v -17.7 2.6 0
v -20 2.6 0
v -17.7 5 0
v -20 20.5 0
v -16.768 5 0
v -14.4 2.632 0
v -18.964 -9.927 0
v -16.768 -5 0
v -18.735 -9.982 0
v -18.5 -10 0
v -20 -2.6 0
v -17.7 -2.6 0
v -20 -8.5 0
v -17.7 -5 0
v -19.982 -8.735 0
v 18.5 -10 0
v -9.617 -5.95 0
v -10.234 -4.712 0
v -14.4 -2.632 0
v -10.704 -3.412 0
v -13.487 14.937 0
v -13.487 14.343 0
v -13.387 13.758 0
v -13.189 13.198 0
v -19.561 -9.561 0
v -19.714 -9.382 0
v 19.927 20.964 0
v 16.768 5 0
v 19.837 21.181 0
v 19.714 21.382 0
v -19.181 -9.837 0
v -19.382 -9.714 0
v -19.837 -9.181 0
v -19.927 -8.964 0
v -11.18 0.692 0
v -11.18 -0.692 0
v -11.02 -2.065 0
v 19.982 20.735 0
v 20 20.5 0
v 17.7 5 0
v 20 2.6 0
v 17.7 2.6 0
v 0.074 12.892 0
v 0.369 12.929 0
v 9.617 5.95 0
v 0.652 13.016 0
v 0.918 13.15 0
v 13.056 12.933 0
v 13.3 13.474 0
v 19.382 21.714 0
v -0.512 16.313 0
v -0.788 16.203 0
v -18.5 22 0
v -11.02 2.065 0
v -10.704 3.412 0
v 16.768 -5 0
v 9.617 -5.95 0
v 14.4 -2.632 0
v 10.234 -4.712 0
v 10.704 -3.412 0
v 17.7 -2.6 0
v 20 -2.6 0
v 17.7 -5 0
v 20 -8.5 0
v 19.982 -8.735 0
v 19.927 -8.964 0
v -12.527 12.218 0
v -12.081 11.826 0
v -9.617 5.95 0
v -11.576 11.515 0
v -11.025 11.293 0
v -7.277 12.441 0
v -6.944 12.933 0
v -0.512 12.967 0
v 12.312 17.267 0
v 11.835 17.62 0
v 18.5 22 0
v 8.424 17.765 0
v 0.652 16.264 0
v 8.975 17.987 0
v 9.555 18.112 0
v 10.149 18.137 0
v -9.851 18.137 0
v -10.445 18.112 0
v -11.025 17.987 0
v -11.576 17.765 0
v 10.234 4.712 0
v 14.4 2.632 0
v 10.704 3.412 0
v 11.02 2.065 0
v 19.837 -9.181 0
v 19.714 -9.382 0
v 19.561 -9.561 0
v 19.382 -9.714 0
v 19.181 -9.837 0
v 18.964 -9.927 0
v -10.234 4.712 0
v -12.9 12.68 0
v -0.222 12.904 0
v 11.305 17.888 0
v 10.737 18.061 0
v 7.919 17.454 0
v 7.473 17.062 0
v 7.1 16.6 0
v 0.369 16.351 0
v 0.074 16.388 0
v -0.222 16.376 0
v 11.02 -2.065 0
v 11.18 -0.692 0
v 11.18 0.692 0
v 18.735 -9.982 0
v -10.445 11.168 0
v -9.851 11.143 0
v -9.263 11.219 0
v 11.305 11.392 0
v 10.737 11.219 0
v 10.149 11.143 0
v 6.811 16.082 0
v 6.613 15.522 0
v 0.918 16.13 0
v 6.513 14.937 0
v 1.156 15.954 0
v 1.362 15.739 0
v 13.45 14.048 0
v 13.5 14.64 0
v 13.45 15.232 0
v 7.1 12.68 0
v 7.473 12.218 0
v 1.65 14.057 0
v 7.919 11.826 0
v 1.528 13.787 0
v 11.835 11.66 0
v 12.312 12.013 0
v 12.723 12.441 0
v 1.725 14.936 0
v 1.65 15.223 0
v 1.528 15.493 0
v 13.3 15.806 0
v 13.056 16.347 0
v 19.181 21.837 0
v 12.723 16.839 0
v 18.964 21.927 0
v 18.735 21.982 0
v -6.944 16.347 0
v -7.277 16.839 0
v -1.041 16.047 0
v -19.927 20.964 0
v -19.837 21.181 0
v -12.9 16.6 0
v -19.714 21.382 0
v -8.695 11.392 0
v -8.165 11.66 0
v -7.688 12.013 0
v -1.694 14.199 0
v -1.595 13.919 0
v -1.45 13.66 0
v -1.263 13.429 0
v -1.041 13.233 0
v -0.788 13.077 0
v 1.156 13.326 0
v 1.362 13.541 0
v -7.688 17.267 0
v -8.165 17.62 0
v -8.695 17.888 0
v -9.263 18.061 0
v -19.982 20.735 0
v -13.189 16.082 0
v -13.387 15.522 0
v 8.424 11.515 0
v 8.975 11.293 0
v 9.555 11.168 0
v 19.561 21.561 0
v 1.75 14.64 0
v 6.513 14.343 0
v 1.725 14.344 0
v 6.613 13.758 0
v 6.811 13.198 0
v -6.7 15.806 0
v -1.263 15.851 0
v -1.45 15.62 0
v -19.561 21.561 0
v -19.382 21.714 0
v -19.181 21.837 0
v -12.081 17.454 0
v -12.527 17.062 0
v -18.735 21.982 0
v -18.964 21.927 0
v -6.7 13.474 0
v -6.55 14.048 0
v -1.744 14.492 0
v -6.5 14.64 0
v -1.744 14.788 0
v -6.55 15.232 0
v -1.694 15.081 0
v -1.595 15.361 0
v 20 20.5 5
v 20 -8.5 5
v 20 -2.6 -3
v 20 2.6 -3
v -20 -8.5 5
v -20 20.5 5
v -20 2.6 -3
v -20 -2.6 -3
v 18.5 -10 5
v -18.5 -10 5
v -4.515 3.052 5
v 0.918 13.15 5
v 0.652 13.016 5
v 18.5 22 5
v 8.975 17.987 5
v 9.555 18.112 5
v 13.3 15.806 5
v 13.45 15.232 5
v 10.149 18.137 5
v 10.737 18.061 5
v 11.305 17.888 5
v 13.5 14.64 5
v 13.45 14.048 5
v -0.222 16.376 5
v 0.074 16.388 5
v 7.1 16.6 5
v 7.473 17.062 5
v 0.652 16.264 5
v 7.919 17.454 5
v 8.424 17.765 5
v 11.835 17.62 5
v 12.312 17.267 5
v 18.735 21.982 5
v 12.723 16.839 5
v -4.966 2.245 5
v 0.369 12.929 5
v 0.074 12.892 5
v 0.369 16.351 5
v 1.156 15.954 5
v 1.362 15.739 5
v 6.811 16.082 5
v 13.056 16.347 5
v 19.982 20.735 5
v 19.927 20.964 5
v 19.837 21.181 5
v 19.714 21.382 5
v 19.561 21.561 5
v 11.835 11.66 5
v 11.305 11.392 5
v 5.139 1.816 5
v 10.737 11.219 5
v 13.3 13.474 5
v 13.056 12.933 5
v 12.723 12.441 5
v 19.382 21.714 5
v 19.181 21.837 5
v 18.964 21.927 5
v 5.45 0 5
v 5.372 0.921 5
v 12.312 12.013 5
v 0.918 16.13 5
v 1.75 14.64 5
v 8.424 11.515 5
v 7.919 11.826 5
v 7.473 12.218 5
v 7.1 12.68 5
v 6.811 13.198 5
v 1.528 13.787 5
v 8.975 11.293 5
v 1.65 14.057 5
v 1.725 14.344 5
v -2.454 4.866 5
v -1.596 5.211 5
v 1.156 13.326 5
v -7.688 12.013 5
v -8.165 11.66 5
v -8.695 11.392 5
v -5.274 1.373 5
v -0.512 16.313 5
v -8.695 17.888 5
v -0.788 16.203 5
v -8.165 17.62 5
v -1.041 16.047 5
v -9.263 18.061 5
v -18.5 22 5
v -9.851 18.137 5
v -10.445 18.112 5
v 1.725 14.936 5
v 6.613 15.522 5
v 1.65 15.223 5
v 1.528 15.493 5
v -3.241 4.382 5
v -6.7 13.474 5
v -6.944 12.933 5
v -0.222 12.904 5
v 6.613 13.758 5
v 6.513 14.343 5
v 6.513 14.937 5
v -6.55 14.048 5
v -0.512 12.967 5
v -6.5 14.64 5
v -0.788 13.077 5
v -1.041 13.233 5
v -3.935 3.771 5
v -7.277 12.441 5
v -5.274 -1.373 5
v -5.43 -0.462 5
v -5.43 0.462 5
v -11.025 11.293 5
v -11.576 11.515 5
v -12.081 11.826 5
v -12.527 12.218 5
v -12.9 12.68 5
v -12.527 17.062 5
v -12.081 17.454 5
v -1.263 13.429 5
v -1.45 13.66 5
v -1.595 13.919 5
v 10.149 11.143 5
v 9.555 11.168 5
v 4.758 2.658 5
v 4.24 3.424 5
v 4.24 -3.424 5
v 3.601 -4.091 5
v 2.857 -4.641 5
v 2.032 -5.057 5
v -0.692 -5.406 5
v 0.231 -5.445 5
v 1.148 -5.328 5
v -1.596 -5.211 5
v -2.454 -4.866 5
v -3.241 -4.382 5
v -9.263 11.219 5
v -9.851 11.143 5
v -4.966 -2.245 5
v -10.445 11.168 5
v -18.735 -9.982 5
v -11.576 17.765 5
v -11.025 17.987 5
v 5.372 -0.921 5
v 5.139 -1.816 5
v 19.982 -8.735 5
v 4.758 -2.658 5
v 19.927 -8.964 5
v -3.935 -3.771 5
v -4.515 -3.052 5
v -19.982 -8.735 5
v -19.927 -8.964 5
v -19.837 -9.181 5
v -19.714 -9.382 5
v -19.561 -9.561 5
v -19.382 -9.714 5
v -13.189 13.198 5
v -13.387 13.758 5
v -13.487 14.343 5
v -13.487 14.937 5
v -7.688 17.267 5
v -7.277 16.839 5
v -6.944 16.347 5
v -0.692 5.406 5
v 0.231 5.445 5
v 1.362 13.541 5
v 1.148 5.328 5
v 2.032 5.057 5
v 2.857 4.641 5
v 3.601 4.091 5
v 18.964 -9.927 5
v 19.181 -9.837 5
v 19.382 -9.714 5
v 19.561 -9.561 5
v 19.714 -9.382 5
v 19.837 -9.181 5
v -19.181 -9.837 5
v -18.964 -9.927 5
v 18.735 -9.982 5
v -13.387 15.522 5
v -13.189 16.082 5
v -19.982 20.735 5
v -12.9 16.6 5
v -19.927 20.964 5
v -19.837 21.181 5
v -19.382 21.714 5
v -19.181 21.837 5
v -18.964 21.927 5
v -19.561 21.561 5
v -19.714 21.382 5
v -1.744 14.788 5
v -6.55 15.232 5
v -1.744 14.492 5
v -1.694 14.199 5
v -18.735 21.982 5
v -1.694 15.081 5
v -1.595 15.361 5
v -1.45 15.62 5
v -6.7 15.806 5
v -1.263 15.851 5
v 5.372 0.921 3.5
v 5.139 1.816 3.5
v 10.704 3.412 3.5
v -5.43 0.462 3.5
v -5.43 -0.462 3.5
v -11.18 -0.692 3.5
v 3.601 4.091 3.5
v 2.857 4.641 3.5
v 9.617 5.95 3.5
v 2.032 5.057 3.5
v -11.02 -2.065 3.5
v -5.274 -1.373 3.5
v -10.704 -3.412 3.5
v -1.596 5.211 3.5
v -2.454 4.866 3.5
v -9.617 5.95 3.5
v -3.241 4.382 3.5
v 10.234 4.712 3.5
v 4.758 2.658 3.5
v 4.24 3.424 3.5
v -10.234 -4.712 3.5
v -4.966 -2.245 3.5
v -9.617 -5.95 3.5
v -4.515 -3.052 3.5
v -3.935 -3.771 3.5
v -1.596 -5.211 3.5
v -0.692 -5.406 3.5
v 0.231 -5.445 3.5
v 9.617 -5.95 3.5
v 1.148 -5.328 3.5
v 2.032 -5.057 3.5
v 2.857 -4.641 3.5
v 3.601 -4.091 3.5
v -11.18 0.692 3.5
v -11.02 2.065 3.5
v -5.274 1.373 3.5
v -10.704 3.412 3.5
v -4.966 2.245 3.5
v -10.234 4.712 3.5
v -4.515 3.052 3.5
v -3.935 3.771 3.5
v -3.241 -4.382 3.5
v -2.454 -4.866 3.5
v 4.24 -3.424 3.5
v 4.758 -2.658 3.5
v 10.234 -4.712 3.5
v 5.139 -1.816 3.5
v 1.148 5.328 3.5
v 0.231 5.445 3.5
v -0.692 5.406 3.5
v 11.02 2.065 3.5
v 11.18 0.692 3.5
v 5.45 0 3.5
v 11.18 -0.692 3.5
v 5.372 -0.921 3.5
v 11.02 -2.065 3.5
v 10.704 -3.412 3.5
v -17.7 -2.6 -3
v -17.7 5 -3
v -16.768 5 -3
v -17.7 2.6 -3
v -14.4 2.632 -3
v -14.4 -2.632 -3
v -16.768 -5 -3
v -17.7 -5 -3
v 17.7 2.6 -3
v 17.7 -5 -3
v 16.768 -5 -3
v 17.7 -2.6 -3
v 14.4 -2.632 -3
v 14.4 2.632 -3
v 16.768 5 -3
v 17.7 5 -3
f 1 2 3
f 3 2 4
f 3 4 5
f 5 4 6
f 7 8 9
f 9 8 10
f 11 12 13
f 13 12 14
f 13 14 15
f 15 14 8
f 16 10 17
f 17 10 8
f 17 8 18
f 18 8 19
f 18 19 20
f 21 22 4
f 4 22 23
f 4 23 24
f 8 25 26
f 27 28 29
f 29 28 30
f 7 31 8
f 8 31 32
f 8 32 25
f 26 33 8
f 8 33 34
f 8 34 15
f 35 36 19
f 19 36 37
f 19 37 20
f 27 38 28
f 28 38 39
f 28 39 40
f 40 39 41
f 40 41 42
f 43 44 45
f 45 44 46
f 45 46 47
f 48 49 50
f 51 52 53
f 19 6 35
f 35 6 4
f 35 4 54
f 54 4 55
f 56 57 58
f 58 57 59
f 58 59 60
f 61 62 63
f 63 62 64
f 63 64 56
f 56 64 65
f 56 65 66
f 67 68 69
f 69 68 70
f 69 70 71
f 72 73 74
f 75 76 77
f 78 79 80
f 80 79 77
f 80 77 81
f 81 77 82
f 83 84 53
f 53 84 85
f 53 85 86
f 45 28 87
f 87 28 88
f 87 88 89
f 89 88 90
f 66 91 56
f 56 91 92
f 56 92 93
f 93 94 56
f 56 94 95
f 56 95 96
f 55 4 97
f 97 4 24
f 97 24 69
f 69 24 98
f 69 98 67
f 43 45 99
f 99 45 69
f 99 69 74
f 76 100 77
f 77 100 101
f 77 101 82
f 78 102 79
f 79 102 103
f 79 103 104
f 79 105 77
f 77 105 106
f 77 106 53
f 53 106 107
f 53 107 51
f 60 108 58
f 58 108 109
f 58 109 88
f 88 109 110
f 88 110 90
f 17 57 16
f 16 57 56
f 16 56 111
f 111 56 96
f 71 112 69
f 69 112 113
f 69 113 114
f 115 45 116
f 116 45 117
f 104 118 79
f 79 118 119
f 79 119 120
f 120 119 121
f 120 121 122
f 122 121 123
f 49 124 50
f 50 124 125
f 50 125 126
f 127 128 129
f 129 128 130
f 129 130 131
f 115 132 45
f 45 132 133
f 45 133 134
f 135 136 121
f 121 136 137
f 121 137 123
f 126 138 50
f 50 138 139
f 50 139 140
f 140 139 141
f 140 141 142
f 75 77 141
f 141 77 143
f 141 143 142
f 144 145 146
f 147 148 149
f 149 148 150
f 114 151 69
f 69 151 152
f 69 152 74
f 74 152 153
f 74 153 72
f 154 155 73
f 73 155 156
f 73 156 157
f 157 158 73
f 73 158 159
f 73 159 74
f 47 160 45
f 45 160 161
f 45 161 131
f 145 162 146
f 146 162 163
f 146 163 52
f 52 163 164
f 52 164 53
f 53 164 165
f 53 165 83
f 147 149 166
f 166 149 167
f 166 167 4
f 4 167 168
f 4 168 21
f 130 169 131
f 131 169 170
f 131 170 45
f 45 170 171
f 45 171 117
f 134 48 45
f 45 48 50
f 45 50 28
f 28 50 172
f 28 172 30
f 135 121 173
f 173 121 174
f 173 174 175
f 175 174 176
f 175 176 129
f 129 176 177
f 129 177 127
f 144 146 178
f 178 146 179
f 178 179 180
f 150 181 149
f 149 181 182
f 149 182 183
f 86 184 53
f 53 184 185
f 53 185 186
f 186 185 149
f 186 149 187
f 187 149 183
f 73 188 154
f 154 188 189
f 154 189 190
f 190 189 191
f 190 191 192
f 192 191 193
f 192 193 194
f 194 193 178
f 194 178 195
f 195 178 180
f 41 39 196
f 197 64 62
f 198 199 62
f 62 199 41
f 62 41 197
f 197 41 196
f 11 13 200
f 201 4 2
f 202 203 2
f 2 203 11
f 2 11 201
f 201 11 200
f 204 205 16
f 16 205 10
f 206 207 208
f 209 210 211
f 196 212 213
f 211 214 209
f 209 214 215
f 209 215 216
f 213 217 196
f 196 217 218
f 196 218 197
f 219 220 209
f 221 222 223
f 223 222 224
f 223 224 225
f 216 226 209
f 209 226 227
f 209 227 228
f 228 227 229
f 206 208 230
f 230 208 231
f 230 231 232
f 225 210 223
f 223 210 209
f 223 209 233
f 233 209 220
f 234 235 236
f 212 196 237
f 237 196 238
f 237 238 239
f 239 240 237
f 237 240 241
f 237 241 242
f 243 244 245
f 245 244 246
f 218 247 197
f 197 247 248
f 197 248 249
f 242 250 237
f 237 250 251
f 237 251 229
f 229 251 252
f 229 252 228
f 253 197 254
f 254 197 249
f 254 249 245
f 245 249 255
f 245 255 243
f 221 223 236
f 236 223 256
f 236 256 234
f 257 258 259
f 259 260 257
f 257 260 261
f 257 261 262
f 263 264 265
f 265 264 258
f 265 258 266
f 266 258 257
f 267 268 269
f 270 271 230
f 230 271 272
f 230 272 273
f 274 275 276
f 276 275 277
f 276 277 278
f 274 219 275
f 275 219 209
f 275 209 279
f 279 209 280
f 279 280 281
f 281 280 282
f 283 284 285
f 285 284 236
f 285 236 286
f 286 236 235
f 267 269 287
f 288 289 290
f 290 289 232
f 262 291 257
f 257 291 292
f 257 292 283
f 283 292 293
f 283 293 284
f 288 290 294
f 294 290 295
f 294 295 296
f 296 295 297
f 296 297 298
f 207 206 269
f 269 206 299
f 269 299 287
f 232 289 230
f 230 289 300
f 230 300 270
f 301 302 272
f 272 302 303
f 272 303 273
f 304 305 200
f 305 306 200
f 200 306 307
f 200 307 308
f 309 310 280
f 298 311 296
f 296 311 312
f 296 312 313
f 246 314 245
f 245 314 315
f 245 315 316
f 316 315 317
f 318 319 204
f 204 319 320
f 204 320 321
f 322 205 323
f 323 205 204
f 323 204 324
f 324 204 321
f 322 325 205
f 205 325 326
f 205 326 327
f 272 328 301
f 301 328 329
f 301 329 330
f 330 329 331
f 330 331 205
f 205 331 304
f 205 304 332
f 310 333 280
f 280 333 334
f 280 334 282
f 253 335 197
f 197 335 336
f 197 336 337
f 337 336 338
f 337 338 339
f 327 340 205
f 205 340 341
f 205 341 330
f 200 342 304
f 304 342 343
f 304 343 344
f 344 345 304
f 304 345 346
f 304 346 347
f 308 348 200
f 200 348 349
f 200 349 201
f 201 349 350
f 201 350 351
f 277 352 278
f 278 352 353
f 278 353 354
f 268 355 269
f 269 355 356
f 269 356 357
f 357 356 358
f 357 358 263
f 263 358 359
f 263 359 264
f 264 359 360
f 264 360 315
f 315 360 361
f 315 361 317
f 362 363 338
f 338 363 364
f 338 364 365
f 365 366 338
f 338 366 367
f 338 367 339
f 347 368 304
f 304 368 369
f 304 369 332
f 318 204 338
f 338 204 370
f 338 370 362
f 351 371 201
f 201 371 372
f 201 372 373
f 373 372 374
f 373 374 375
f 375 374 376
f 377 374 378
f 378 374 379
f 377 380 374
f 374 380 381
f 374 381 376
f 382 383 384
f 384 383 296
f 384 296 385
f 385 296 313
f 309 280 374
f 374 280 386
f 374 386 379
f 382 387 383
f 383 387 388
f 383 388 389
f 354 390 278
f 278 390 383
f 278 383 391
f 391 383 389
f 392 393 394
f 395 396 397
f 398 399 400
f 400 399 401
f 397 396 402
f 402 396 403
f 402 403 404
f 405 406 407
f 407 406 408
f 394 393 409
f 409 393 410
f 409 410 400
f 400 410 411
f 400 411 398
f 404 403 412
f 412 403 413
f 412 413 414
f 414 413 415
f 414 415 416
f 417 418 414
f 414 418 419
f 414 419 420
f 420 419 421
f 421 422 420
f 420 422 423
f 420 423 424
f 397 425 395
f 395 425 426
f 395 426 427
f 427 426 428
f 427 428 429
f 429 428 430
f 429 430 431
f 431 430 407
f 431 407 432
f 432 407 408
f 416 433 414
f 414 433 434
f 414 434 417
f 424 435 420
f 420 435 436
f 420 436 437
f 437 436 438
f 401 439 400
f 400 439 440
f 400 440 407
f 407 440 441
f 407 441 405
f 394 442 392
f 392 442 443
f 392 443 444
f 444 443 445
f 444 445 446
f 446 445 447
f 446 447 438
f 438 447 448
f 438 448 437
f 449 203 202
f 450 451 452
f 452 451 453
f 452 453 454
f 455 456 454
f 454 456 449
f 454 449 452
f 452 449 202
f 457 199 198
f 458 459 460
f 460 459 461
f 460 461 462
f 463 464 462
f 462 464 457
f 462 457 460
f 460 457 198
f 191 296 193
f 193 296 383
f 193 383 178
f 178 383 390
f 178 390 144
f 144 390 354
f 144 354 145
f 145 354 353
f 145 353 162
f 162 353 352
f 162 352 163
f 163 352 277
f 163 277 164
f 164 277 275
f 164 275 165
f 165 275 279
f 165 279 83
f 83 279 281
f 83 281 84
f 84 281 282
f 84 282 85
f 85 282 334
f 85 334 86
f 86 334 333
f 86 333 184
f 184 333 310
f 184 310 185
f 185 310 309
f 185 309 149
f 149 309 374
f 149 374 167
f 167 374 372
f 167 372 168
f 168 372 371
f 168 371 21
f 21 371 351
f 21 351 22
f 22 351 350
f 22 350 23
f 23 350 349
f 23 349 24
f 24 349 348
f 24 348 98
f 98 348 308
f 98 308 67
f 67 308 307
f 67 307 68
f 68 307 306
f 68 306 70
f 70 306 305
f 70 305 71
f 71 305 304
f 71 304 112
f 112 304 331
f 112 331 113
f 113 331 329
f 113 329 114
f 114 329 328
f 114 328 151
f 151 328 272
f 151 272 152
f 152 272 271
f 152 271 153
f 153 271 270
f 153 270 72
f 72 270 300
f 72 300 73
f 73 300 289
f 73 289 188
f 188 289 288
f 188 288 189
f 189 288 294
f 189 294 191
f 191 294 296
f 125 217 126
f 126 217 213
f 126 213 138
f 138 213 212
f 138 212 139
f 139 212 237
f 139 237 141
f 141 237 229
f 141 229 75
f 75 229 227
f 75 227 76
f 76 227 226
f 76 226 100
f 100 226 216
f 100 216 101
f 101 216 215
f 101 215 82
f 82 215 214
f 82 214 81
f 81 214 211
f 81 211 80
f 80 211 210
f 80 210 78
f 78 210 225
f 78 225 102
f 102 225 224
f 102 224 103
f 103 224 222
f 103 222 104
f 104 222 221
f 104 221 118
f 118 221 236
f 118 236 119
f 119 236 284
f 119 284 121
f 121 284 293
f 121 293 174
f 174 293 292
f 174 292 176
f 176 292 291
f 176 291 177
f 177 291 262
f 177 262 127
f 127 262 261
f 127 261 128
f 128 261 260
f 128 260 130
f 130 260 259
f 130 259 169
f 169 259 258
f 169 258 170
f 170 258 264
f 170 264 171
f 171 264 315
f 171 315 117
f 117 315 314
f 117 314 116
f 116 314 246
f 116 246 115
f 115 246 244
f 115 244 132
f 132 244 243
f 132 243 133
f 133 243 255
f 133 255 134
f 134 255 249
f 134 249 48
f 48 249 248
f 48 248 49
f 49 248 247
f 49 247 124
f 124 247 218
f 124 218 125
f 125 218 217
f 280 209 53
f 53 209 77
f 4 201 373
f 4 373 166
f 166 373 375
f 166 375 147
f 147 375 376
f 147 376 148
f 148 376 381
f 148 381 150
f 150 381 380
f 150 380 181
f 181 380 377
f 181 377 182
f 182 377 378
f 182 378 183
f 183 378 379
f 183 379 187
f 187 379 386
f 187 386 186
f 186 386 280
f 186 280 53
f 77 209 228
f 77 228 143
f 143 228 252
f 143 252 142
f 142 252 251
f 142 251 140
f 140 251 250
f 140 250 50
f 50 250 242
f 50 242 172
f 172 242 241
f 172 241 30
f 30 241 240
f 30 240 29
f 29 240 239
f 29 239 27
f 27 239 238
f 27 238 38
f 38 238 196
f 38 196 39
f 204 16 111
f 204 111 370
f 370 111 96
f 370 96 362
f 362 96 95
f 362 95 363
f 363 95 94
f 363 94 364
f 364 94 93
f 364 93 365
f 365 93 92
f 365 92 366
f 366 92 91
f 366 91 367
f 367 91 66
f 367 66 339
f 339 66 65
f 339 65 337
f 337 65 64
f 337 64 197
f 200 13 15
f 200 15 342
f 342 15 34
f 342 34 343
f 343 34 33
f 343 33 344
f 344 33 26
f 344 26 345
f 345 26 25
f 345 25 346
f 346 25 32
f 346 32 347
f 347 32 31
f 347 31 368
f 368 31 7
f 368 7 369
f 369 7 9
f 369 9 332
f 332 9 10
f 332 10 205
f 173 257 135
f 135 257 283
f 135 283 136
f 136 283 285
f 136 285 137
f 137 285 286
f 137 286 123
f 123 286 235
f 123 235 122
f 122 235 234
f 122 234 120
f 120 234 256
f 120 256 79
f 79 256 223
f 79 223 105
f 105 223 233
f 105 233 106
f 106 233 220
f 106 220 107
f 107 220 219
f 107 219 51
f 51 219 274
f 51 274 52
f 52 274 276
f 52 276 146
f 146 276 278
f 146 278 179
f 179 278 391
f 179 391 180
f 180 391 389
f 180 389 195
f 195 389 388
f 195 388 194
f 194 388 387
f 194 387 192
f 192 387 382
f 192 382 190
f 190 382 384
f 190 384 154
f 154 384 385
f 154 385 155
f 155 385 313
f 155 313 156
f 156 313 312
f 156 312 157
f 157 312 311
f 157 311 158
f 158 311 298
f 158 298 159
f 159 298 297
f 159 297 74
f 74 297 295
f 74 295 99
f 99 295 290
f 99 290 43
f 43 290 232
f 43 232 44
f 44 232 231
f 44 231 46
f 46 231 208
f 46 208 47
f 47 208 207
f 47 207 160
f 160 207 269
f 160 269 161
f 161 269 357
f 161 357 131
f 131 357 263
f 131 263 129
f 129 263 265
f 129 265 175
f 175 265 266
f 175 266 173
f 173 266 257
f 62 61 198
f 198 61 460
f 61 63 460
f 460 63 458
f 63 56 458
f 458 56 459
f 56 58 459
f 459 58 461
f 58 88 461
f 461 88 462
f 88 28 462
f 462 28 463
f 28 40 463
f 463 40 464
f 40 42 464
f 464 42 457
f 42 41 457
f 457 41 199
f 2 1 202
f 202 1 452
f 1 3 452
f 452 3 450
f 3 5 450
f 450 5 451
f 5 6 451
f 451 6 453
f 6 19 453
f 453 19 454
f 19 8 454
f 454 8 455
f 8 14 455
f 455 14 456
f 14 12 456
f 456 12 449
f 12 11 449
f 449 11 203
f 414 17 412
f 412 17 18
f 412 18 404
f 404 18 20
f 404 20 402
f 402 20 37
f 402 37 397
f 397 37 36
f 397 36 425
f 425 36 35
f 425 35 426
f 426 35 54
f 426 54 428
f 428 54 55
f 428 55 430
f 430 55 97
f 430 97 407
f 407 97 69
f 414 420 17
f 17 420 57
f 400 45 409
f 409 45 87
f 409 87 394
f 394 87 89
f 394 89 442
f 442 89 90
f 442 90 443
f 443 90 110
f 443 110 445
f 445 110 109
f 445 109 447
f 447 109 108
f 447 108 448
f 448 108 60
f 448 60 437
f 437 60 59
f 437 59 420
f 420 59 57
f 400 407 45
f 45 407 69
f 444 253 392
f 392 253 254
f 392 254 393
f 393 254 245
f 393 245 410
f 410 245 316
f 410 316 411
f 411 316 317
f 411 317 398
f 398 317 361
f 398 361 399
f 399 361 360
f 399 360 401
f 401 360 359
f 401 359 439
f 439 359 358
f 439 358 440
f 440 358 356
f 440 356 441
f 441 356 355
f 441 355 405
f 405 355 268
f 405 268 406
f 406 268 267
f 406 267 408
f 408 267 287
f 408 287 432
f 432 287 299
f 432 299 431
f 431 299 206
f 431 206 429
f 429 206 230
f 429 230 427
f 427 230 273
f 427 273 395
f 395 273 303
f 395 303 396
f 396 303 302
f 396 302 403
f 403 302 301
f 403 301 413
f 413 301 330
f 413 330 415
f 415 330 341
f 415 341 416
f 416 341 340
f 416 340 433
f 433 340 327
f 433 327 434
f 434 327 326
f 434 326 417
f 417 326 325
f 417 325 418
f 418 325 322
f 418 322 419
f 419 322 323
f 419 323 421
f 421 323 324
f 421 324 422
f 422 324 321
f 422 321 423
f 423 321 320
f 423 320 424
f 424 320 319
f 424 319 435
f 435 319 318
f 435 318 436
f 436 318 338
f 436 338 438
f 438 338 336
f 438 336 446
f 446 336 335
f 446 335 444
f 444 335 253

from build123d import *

# Parameters (mm, degrees)
SKETCH_1_W          = 40
SKETCH_1_H          = 20
EXTRUDE_1_DEPTH     = 3.5
SKETCH_2_W          = 40
SKETCH_2_H          = 20
SKETCH_2_R          = 5.25
EXTRUDE_2_DEPTH     = 1.5
EXTRUDE_3_DEPTH     = 8
SKETCH_4_W          = 40
SKETCH_4_H          = 12
SKETCH_4_R          = 3.5
EXTRUDE_4_DEPTH     = 5
FILLET_1_R          = 1.5
SKETCH_5_R          = 1.75
CUT_EXTRUDE_1_DEPTH = 5
CUT_EXTRUDE_2_DEPTH = 3
CUT_EXTRUDE_3_DEPTH = 3.5
CUT_EXTRUDE_START   = -3.5
SKETCH_8_R          = 5.45
SKETCH_8_R_2        = 5.25
CUT_EXTRUDE_4_DEPTH = 3.5


with BuildPart() as part:
    # 草图1 → 凸台-拉伸1 (new body)
    with BuildSketch(Plane.XY):
        Rectangle(SKETCH_1_W, SKETCH_1_H)
        with BuildLine():
            Line((-9.5, -5.75), (9.5, -5.75))
            ThreePointArc((9.5, -5.75), (11, 0), (9.5, 5.75))
            Line((9.5, 5.75), (-9.5, 5.75))
            ThreePointArc((-9.5, 5.75), (-11, 0), (-9.5, -5.75))
        make_face(mode=Mode.SUBTRACT)
    extrude(amount=EXTRUDE_1_DEPTH)

    # 草图2 → 凸台-拉伸2 (add)
    with BuildSketch(Plane.XY.offset(3.5)):
        Rectangle(SKETCH_2_W, SKETCH_2_H)
        Circle(SKETCH_2_R, mode=Mode.SUBTRACT)
    extrude(amount=EXTRUDE_2_DEPTH)

    # 草图3 → 凸台-拉伸3 (add)
    with BuildSketch(Plane.XY.offset(5)):
        Polygon((-16.560660172, 5.5), (-18.2, 5.5), (-18.2, 3.1), (-20, 3.1), (-20, -3.1), (-18.2, -3.1), (-18.2, -5.5), (-16.560660172, -5.5), (-13.9, -2.839339828), (-13.9, 2.839339828), align=None)
        Polygon((18.2, 3.1), (20, 3.1), (20, -3.1), (18.2, -3.1), (18.2, -5.5), (16.560660172, -5.5), (13.9, -2.839339828), (13.9, 2.839339828), (16.560660172, 5.5), (18.2, 5.5), align=None)
    extrude(amount=-EXTRUDE_3_DEPTH)

    # 草图4 → 凸台-拉伸4 (add)
    with BuildSketch(Plane.XY.offset(5)):
        with Locations((0, 16)):
            Rectangle(SKETCH_4_W, SKETCH_4_H)
        with Locations((-10, 14.64)):
            Circle(SKETCH_4_R, mode=Mode.SUBTRACT)
        with Locations((10, 14.64)):
            Circle(SKETCH_4_R, mode=Mode.SUBTRACT)
    extrude(amount=-EXTRUDE_4_DEPTH)

    # 圆角1
    fillet_1_edges = [part.edges().sort_by_distance(p)[0] for p in [
        (20, 22, 2.5),
        (-20, 22, 2.5),
        (20, -10, 2.5),
        (-20, -10, 2.5),
    ]]
    fillet(fillet_1_edges, radius=FILLET_1_R)

    # 草图5 → 切除-拉伸1 (cut)
    with BuildSketch(Plane.XY.offset(5)):
        with Locations((0, 14.64)):
            Circle(SKETCH_5_R)
    extrude(amount=-CUT_EXTRUDE_1_DEPTH, mode=Mode.SUBTRACT)

    # 草图6 → 切除-拉伸2 (cut)
    with BuildSketch(Plane(origin=(0, 0, -3), x_dir=(-1, 0, 0), z_dir=(0, 0, -1))):
        Polygon((-18.2, 5.5), (-18.2, 3.1), (-20, 3.1), (-20, 2.6), (-19.5, 2.6), (-17.7, 2.6), (-17.7, 5), (-16.767766953, 5), (-14.4, 2.632233047), (-14.4, -2.632233047), (-16.767766953, -5), (-17.7, -5), (-17.7, -2.6), (-19.5, -2.6), (-20, -2.6), (-20, -3.1), (-18.2, -3.1), (-18.2, -5.5), (-16.560660172, -5.5), (-13.9, -2.839339828), (-13.9, 2.839339828), (-16.560660172, 5.5), align=None)
        Polygon((18.2, -5.5), (18.2, -3.1), (20, -3.1), (20, -2.6), (19.5, -2.6), (17.7, -2.6), (17.7, -5), (16.767766953, -5), (14.4, -2.632233047), (14.4, 2.632233047), (16.767766953, 5), (17.7, 5), (17.7, 2.6), (19.5, 2.6), (20, 2.6), (20, 3.1), (18.2, 3.1), (18.2, 5.5), (16.560660172, 5.5), (13.9, 2.839339828), (13.9, -2.839339828), (16.560660172, -5.5), align=None)
    extrude(amount=-CUT_EXTRUDE_2_DEPTH, mode=Mode.SUBTRACT)

    # 草图7 → 切除-拉伸3 (cut)
    with BuildSketch(Plane(origin=(0, 0, 0), x_dir=(-1, 0, 0), z_dir=(0, 0, -1))):
        with BuildLine():
            Line((9.616579756, 5.95), (-9.616579756, 5.95))
            ThreePointArc((-9.616579756, 5.95), (-11.2, 0), (-9.616579756, -5.95))
            Line((-9.616579756, -5.95), (9.616579756, -5.95))
            ThreePointArc((9.616579756, -5.95), (11.2, 0), (9.616579756, 5.95))
        make_face()
    extrude(amount=-CUT_EXTRUDE_3_DEPTH, mode=Mode.SUBTRACT)

    # 草图8 → 切除-拉伸4 (cut)
    with BuildSketch(Plane.XY.offset(5).offset(CUT_EXTRUDE_START)):
        Circle(SKETCH_8_R)
        Circle(SKETCH_8_R_2, mode=Mode.SUBTRACT)
    extrude(amount=CUT_EXTRUDE_4_DEPTH, mode=Mode.SUBTRACT)


solid = part.part
